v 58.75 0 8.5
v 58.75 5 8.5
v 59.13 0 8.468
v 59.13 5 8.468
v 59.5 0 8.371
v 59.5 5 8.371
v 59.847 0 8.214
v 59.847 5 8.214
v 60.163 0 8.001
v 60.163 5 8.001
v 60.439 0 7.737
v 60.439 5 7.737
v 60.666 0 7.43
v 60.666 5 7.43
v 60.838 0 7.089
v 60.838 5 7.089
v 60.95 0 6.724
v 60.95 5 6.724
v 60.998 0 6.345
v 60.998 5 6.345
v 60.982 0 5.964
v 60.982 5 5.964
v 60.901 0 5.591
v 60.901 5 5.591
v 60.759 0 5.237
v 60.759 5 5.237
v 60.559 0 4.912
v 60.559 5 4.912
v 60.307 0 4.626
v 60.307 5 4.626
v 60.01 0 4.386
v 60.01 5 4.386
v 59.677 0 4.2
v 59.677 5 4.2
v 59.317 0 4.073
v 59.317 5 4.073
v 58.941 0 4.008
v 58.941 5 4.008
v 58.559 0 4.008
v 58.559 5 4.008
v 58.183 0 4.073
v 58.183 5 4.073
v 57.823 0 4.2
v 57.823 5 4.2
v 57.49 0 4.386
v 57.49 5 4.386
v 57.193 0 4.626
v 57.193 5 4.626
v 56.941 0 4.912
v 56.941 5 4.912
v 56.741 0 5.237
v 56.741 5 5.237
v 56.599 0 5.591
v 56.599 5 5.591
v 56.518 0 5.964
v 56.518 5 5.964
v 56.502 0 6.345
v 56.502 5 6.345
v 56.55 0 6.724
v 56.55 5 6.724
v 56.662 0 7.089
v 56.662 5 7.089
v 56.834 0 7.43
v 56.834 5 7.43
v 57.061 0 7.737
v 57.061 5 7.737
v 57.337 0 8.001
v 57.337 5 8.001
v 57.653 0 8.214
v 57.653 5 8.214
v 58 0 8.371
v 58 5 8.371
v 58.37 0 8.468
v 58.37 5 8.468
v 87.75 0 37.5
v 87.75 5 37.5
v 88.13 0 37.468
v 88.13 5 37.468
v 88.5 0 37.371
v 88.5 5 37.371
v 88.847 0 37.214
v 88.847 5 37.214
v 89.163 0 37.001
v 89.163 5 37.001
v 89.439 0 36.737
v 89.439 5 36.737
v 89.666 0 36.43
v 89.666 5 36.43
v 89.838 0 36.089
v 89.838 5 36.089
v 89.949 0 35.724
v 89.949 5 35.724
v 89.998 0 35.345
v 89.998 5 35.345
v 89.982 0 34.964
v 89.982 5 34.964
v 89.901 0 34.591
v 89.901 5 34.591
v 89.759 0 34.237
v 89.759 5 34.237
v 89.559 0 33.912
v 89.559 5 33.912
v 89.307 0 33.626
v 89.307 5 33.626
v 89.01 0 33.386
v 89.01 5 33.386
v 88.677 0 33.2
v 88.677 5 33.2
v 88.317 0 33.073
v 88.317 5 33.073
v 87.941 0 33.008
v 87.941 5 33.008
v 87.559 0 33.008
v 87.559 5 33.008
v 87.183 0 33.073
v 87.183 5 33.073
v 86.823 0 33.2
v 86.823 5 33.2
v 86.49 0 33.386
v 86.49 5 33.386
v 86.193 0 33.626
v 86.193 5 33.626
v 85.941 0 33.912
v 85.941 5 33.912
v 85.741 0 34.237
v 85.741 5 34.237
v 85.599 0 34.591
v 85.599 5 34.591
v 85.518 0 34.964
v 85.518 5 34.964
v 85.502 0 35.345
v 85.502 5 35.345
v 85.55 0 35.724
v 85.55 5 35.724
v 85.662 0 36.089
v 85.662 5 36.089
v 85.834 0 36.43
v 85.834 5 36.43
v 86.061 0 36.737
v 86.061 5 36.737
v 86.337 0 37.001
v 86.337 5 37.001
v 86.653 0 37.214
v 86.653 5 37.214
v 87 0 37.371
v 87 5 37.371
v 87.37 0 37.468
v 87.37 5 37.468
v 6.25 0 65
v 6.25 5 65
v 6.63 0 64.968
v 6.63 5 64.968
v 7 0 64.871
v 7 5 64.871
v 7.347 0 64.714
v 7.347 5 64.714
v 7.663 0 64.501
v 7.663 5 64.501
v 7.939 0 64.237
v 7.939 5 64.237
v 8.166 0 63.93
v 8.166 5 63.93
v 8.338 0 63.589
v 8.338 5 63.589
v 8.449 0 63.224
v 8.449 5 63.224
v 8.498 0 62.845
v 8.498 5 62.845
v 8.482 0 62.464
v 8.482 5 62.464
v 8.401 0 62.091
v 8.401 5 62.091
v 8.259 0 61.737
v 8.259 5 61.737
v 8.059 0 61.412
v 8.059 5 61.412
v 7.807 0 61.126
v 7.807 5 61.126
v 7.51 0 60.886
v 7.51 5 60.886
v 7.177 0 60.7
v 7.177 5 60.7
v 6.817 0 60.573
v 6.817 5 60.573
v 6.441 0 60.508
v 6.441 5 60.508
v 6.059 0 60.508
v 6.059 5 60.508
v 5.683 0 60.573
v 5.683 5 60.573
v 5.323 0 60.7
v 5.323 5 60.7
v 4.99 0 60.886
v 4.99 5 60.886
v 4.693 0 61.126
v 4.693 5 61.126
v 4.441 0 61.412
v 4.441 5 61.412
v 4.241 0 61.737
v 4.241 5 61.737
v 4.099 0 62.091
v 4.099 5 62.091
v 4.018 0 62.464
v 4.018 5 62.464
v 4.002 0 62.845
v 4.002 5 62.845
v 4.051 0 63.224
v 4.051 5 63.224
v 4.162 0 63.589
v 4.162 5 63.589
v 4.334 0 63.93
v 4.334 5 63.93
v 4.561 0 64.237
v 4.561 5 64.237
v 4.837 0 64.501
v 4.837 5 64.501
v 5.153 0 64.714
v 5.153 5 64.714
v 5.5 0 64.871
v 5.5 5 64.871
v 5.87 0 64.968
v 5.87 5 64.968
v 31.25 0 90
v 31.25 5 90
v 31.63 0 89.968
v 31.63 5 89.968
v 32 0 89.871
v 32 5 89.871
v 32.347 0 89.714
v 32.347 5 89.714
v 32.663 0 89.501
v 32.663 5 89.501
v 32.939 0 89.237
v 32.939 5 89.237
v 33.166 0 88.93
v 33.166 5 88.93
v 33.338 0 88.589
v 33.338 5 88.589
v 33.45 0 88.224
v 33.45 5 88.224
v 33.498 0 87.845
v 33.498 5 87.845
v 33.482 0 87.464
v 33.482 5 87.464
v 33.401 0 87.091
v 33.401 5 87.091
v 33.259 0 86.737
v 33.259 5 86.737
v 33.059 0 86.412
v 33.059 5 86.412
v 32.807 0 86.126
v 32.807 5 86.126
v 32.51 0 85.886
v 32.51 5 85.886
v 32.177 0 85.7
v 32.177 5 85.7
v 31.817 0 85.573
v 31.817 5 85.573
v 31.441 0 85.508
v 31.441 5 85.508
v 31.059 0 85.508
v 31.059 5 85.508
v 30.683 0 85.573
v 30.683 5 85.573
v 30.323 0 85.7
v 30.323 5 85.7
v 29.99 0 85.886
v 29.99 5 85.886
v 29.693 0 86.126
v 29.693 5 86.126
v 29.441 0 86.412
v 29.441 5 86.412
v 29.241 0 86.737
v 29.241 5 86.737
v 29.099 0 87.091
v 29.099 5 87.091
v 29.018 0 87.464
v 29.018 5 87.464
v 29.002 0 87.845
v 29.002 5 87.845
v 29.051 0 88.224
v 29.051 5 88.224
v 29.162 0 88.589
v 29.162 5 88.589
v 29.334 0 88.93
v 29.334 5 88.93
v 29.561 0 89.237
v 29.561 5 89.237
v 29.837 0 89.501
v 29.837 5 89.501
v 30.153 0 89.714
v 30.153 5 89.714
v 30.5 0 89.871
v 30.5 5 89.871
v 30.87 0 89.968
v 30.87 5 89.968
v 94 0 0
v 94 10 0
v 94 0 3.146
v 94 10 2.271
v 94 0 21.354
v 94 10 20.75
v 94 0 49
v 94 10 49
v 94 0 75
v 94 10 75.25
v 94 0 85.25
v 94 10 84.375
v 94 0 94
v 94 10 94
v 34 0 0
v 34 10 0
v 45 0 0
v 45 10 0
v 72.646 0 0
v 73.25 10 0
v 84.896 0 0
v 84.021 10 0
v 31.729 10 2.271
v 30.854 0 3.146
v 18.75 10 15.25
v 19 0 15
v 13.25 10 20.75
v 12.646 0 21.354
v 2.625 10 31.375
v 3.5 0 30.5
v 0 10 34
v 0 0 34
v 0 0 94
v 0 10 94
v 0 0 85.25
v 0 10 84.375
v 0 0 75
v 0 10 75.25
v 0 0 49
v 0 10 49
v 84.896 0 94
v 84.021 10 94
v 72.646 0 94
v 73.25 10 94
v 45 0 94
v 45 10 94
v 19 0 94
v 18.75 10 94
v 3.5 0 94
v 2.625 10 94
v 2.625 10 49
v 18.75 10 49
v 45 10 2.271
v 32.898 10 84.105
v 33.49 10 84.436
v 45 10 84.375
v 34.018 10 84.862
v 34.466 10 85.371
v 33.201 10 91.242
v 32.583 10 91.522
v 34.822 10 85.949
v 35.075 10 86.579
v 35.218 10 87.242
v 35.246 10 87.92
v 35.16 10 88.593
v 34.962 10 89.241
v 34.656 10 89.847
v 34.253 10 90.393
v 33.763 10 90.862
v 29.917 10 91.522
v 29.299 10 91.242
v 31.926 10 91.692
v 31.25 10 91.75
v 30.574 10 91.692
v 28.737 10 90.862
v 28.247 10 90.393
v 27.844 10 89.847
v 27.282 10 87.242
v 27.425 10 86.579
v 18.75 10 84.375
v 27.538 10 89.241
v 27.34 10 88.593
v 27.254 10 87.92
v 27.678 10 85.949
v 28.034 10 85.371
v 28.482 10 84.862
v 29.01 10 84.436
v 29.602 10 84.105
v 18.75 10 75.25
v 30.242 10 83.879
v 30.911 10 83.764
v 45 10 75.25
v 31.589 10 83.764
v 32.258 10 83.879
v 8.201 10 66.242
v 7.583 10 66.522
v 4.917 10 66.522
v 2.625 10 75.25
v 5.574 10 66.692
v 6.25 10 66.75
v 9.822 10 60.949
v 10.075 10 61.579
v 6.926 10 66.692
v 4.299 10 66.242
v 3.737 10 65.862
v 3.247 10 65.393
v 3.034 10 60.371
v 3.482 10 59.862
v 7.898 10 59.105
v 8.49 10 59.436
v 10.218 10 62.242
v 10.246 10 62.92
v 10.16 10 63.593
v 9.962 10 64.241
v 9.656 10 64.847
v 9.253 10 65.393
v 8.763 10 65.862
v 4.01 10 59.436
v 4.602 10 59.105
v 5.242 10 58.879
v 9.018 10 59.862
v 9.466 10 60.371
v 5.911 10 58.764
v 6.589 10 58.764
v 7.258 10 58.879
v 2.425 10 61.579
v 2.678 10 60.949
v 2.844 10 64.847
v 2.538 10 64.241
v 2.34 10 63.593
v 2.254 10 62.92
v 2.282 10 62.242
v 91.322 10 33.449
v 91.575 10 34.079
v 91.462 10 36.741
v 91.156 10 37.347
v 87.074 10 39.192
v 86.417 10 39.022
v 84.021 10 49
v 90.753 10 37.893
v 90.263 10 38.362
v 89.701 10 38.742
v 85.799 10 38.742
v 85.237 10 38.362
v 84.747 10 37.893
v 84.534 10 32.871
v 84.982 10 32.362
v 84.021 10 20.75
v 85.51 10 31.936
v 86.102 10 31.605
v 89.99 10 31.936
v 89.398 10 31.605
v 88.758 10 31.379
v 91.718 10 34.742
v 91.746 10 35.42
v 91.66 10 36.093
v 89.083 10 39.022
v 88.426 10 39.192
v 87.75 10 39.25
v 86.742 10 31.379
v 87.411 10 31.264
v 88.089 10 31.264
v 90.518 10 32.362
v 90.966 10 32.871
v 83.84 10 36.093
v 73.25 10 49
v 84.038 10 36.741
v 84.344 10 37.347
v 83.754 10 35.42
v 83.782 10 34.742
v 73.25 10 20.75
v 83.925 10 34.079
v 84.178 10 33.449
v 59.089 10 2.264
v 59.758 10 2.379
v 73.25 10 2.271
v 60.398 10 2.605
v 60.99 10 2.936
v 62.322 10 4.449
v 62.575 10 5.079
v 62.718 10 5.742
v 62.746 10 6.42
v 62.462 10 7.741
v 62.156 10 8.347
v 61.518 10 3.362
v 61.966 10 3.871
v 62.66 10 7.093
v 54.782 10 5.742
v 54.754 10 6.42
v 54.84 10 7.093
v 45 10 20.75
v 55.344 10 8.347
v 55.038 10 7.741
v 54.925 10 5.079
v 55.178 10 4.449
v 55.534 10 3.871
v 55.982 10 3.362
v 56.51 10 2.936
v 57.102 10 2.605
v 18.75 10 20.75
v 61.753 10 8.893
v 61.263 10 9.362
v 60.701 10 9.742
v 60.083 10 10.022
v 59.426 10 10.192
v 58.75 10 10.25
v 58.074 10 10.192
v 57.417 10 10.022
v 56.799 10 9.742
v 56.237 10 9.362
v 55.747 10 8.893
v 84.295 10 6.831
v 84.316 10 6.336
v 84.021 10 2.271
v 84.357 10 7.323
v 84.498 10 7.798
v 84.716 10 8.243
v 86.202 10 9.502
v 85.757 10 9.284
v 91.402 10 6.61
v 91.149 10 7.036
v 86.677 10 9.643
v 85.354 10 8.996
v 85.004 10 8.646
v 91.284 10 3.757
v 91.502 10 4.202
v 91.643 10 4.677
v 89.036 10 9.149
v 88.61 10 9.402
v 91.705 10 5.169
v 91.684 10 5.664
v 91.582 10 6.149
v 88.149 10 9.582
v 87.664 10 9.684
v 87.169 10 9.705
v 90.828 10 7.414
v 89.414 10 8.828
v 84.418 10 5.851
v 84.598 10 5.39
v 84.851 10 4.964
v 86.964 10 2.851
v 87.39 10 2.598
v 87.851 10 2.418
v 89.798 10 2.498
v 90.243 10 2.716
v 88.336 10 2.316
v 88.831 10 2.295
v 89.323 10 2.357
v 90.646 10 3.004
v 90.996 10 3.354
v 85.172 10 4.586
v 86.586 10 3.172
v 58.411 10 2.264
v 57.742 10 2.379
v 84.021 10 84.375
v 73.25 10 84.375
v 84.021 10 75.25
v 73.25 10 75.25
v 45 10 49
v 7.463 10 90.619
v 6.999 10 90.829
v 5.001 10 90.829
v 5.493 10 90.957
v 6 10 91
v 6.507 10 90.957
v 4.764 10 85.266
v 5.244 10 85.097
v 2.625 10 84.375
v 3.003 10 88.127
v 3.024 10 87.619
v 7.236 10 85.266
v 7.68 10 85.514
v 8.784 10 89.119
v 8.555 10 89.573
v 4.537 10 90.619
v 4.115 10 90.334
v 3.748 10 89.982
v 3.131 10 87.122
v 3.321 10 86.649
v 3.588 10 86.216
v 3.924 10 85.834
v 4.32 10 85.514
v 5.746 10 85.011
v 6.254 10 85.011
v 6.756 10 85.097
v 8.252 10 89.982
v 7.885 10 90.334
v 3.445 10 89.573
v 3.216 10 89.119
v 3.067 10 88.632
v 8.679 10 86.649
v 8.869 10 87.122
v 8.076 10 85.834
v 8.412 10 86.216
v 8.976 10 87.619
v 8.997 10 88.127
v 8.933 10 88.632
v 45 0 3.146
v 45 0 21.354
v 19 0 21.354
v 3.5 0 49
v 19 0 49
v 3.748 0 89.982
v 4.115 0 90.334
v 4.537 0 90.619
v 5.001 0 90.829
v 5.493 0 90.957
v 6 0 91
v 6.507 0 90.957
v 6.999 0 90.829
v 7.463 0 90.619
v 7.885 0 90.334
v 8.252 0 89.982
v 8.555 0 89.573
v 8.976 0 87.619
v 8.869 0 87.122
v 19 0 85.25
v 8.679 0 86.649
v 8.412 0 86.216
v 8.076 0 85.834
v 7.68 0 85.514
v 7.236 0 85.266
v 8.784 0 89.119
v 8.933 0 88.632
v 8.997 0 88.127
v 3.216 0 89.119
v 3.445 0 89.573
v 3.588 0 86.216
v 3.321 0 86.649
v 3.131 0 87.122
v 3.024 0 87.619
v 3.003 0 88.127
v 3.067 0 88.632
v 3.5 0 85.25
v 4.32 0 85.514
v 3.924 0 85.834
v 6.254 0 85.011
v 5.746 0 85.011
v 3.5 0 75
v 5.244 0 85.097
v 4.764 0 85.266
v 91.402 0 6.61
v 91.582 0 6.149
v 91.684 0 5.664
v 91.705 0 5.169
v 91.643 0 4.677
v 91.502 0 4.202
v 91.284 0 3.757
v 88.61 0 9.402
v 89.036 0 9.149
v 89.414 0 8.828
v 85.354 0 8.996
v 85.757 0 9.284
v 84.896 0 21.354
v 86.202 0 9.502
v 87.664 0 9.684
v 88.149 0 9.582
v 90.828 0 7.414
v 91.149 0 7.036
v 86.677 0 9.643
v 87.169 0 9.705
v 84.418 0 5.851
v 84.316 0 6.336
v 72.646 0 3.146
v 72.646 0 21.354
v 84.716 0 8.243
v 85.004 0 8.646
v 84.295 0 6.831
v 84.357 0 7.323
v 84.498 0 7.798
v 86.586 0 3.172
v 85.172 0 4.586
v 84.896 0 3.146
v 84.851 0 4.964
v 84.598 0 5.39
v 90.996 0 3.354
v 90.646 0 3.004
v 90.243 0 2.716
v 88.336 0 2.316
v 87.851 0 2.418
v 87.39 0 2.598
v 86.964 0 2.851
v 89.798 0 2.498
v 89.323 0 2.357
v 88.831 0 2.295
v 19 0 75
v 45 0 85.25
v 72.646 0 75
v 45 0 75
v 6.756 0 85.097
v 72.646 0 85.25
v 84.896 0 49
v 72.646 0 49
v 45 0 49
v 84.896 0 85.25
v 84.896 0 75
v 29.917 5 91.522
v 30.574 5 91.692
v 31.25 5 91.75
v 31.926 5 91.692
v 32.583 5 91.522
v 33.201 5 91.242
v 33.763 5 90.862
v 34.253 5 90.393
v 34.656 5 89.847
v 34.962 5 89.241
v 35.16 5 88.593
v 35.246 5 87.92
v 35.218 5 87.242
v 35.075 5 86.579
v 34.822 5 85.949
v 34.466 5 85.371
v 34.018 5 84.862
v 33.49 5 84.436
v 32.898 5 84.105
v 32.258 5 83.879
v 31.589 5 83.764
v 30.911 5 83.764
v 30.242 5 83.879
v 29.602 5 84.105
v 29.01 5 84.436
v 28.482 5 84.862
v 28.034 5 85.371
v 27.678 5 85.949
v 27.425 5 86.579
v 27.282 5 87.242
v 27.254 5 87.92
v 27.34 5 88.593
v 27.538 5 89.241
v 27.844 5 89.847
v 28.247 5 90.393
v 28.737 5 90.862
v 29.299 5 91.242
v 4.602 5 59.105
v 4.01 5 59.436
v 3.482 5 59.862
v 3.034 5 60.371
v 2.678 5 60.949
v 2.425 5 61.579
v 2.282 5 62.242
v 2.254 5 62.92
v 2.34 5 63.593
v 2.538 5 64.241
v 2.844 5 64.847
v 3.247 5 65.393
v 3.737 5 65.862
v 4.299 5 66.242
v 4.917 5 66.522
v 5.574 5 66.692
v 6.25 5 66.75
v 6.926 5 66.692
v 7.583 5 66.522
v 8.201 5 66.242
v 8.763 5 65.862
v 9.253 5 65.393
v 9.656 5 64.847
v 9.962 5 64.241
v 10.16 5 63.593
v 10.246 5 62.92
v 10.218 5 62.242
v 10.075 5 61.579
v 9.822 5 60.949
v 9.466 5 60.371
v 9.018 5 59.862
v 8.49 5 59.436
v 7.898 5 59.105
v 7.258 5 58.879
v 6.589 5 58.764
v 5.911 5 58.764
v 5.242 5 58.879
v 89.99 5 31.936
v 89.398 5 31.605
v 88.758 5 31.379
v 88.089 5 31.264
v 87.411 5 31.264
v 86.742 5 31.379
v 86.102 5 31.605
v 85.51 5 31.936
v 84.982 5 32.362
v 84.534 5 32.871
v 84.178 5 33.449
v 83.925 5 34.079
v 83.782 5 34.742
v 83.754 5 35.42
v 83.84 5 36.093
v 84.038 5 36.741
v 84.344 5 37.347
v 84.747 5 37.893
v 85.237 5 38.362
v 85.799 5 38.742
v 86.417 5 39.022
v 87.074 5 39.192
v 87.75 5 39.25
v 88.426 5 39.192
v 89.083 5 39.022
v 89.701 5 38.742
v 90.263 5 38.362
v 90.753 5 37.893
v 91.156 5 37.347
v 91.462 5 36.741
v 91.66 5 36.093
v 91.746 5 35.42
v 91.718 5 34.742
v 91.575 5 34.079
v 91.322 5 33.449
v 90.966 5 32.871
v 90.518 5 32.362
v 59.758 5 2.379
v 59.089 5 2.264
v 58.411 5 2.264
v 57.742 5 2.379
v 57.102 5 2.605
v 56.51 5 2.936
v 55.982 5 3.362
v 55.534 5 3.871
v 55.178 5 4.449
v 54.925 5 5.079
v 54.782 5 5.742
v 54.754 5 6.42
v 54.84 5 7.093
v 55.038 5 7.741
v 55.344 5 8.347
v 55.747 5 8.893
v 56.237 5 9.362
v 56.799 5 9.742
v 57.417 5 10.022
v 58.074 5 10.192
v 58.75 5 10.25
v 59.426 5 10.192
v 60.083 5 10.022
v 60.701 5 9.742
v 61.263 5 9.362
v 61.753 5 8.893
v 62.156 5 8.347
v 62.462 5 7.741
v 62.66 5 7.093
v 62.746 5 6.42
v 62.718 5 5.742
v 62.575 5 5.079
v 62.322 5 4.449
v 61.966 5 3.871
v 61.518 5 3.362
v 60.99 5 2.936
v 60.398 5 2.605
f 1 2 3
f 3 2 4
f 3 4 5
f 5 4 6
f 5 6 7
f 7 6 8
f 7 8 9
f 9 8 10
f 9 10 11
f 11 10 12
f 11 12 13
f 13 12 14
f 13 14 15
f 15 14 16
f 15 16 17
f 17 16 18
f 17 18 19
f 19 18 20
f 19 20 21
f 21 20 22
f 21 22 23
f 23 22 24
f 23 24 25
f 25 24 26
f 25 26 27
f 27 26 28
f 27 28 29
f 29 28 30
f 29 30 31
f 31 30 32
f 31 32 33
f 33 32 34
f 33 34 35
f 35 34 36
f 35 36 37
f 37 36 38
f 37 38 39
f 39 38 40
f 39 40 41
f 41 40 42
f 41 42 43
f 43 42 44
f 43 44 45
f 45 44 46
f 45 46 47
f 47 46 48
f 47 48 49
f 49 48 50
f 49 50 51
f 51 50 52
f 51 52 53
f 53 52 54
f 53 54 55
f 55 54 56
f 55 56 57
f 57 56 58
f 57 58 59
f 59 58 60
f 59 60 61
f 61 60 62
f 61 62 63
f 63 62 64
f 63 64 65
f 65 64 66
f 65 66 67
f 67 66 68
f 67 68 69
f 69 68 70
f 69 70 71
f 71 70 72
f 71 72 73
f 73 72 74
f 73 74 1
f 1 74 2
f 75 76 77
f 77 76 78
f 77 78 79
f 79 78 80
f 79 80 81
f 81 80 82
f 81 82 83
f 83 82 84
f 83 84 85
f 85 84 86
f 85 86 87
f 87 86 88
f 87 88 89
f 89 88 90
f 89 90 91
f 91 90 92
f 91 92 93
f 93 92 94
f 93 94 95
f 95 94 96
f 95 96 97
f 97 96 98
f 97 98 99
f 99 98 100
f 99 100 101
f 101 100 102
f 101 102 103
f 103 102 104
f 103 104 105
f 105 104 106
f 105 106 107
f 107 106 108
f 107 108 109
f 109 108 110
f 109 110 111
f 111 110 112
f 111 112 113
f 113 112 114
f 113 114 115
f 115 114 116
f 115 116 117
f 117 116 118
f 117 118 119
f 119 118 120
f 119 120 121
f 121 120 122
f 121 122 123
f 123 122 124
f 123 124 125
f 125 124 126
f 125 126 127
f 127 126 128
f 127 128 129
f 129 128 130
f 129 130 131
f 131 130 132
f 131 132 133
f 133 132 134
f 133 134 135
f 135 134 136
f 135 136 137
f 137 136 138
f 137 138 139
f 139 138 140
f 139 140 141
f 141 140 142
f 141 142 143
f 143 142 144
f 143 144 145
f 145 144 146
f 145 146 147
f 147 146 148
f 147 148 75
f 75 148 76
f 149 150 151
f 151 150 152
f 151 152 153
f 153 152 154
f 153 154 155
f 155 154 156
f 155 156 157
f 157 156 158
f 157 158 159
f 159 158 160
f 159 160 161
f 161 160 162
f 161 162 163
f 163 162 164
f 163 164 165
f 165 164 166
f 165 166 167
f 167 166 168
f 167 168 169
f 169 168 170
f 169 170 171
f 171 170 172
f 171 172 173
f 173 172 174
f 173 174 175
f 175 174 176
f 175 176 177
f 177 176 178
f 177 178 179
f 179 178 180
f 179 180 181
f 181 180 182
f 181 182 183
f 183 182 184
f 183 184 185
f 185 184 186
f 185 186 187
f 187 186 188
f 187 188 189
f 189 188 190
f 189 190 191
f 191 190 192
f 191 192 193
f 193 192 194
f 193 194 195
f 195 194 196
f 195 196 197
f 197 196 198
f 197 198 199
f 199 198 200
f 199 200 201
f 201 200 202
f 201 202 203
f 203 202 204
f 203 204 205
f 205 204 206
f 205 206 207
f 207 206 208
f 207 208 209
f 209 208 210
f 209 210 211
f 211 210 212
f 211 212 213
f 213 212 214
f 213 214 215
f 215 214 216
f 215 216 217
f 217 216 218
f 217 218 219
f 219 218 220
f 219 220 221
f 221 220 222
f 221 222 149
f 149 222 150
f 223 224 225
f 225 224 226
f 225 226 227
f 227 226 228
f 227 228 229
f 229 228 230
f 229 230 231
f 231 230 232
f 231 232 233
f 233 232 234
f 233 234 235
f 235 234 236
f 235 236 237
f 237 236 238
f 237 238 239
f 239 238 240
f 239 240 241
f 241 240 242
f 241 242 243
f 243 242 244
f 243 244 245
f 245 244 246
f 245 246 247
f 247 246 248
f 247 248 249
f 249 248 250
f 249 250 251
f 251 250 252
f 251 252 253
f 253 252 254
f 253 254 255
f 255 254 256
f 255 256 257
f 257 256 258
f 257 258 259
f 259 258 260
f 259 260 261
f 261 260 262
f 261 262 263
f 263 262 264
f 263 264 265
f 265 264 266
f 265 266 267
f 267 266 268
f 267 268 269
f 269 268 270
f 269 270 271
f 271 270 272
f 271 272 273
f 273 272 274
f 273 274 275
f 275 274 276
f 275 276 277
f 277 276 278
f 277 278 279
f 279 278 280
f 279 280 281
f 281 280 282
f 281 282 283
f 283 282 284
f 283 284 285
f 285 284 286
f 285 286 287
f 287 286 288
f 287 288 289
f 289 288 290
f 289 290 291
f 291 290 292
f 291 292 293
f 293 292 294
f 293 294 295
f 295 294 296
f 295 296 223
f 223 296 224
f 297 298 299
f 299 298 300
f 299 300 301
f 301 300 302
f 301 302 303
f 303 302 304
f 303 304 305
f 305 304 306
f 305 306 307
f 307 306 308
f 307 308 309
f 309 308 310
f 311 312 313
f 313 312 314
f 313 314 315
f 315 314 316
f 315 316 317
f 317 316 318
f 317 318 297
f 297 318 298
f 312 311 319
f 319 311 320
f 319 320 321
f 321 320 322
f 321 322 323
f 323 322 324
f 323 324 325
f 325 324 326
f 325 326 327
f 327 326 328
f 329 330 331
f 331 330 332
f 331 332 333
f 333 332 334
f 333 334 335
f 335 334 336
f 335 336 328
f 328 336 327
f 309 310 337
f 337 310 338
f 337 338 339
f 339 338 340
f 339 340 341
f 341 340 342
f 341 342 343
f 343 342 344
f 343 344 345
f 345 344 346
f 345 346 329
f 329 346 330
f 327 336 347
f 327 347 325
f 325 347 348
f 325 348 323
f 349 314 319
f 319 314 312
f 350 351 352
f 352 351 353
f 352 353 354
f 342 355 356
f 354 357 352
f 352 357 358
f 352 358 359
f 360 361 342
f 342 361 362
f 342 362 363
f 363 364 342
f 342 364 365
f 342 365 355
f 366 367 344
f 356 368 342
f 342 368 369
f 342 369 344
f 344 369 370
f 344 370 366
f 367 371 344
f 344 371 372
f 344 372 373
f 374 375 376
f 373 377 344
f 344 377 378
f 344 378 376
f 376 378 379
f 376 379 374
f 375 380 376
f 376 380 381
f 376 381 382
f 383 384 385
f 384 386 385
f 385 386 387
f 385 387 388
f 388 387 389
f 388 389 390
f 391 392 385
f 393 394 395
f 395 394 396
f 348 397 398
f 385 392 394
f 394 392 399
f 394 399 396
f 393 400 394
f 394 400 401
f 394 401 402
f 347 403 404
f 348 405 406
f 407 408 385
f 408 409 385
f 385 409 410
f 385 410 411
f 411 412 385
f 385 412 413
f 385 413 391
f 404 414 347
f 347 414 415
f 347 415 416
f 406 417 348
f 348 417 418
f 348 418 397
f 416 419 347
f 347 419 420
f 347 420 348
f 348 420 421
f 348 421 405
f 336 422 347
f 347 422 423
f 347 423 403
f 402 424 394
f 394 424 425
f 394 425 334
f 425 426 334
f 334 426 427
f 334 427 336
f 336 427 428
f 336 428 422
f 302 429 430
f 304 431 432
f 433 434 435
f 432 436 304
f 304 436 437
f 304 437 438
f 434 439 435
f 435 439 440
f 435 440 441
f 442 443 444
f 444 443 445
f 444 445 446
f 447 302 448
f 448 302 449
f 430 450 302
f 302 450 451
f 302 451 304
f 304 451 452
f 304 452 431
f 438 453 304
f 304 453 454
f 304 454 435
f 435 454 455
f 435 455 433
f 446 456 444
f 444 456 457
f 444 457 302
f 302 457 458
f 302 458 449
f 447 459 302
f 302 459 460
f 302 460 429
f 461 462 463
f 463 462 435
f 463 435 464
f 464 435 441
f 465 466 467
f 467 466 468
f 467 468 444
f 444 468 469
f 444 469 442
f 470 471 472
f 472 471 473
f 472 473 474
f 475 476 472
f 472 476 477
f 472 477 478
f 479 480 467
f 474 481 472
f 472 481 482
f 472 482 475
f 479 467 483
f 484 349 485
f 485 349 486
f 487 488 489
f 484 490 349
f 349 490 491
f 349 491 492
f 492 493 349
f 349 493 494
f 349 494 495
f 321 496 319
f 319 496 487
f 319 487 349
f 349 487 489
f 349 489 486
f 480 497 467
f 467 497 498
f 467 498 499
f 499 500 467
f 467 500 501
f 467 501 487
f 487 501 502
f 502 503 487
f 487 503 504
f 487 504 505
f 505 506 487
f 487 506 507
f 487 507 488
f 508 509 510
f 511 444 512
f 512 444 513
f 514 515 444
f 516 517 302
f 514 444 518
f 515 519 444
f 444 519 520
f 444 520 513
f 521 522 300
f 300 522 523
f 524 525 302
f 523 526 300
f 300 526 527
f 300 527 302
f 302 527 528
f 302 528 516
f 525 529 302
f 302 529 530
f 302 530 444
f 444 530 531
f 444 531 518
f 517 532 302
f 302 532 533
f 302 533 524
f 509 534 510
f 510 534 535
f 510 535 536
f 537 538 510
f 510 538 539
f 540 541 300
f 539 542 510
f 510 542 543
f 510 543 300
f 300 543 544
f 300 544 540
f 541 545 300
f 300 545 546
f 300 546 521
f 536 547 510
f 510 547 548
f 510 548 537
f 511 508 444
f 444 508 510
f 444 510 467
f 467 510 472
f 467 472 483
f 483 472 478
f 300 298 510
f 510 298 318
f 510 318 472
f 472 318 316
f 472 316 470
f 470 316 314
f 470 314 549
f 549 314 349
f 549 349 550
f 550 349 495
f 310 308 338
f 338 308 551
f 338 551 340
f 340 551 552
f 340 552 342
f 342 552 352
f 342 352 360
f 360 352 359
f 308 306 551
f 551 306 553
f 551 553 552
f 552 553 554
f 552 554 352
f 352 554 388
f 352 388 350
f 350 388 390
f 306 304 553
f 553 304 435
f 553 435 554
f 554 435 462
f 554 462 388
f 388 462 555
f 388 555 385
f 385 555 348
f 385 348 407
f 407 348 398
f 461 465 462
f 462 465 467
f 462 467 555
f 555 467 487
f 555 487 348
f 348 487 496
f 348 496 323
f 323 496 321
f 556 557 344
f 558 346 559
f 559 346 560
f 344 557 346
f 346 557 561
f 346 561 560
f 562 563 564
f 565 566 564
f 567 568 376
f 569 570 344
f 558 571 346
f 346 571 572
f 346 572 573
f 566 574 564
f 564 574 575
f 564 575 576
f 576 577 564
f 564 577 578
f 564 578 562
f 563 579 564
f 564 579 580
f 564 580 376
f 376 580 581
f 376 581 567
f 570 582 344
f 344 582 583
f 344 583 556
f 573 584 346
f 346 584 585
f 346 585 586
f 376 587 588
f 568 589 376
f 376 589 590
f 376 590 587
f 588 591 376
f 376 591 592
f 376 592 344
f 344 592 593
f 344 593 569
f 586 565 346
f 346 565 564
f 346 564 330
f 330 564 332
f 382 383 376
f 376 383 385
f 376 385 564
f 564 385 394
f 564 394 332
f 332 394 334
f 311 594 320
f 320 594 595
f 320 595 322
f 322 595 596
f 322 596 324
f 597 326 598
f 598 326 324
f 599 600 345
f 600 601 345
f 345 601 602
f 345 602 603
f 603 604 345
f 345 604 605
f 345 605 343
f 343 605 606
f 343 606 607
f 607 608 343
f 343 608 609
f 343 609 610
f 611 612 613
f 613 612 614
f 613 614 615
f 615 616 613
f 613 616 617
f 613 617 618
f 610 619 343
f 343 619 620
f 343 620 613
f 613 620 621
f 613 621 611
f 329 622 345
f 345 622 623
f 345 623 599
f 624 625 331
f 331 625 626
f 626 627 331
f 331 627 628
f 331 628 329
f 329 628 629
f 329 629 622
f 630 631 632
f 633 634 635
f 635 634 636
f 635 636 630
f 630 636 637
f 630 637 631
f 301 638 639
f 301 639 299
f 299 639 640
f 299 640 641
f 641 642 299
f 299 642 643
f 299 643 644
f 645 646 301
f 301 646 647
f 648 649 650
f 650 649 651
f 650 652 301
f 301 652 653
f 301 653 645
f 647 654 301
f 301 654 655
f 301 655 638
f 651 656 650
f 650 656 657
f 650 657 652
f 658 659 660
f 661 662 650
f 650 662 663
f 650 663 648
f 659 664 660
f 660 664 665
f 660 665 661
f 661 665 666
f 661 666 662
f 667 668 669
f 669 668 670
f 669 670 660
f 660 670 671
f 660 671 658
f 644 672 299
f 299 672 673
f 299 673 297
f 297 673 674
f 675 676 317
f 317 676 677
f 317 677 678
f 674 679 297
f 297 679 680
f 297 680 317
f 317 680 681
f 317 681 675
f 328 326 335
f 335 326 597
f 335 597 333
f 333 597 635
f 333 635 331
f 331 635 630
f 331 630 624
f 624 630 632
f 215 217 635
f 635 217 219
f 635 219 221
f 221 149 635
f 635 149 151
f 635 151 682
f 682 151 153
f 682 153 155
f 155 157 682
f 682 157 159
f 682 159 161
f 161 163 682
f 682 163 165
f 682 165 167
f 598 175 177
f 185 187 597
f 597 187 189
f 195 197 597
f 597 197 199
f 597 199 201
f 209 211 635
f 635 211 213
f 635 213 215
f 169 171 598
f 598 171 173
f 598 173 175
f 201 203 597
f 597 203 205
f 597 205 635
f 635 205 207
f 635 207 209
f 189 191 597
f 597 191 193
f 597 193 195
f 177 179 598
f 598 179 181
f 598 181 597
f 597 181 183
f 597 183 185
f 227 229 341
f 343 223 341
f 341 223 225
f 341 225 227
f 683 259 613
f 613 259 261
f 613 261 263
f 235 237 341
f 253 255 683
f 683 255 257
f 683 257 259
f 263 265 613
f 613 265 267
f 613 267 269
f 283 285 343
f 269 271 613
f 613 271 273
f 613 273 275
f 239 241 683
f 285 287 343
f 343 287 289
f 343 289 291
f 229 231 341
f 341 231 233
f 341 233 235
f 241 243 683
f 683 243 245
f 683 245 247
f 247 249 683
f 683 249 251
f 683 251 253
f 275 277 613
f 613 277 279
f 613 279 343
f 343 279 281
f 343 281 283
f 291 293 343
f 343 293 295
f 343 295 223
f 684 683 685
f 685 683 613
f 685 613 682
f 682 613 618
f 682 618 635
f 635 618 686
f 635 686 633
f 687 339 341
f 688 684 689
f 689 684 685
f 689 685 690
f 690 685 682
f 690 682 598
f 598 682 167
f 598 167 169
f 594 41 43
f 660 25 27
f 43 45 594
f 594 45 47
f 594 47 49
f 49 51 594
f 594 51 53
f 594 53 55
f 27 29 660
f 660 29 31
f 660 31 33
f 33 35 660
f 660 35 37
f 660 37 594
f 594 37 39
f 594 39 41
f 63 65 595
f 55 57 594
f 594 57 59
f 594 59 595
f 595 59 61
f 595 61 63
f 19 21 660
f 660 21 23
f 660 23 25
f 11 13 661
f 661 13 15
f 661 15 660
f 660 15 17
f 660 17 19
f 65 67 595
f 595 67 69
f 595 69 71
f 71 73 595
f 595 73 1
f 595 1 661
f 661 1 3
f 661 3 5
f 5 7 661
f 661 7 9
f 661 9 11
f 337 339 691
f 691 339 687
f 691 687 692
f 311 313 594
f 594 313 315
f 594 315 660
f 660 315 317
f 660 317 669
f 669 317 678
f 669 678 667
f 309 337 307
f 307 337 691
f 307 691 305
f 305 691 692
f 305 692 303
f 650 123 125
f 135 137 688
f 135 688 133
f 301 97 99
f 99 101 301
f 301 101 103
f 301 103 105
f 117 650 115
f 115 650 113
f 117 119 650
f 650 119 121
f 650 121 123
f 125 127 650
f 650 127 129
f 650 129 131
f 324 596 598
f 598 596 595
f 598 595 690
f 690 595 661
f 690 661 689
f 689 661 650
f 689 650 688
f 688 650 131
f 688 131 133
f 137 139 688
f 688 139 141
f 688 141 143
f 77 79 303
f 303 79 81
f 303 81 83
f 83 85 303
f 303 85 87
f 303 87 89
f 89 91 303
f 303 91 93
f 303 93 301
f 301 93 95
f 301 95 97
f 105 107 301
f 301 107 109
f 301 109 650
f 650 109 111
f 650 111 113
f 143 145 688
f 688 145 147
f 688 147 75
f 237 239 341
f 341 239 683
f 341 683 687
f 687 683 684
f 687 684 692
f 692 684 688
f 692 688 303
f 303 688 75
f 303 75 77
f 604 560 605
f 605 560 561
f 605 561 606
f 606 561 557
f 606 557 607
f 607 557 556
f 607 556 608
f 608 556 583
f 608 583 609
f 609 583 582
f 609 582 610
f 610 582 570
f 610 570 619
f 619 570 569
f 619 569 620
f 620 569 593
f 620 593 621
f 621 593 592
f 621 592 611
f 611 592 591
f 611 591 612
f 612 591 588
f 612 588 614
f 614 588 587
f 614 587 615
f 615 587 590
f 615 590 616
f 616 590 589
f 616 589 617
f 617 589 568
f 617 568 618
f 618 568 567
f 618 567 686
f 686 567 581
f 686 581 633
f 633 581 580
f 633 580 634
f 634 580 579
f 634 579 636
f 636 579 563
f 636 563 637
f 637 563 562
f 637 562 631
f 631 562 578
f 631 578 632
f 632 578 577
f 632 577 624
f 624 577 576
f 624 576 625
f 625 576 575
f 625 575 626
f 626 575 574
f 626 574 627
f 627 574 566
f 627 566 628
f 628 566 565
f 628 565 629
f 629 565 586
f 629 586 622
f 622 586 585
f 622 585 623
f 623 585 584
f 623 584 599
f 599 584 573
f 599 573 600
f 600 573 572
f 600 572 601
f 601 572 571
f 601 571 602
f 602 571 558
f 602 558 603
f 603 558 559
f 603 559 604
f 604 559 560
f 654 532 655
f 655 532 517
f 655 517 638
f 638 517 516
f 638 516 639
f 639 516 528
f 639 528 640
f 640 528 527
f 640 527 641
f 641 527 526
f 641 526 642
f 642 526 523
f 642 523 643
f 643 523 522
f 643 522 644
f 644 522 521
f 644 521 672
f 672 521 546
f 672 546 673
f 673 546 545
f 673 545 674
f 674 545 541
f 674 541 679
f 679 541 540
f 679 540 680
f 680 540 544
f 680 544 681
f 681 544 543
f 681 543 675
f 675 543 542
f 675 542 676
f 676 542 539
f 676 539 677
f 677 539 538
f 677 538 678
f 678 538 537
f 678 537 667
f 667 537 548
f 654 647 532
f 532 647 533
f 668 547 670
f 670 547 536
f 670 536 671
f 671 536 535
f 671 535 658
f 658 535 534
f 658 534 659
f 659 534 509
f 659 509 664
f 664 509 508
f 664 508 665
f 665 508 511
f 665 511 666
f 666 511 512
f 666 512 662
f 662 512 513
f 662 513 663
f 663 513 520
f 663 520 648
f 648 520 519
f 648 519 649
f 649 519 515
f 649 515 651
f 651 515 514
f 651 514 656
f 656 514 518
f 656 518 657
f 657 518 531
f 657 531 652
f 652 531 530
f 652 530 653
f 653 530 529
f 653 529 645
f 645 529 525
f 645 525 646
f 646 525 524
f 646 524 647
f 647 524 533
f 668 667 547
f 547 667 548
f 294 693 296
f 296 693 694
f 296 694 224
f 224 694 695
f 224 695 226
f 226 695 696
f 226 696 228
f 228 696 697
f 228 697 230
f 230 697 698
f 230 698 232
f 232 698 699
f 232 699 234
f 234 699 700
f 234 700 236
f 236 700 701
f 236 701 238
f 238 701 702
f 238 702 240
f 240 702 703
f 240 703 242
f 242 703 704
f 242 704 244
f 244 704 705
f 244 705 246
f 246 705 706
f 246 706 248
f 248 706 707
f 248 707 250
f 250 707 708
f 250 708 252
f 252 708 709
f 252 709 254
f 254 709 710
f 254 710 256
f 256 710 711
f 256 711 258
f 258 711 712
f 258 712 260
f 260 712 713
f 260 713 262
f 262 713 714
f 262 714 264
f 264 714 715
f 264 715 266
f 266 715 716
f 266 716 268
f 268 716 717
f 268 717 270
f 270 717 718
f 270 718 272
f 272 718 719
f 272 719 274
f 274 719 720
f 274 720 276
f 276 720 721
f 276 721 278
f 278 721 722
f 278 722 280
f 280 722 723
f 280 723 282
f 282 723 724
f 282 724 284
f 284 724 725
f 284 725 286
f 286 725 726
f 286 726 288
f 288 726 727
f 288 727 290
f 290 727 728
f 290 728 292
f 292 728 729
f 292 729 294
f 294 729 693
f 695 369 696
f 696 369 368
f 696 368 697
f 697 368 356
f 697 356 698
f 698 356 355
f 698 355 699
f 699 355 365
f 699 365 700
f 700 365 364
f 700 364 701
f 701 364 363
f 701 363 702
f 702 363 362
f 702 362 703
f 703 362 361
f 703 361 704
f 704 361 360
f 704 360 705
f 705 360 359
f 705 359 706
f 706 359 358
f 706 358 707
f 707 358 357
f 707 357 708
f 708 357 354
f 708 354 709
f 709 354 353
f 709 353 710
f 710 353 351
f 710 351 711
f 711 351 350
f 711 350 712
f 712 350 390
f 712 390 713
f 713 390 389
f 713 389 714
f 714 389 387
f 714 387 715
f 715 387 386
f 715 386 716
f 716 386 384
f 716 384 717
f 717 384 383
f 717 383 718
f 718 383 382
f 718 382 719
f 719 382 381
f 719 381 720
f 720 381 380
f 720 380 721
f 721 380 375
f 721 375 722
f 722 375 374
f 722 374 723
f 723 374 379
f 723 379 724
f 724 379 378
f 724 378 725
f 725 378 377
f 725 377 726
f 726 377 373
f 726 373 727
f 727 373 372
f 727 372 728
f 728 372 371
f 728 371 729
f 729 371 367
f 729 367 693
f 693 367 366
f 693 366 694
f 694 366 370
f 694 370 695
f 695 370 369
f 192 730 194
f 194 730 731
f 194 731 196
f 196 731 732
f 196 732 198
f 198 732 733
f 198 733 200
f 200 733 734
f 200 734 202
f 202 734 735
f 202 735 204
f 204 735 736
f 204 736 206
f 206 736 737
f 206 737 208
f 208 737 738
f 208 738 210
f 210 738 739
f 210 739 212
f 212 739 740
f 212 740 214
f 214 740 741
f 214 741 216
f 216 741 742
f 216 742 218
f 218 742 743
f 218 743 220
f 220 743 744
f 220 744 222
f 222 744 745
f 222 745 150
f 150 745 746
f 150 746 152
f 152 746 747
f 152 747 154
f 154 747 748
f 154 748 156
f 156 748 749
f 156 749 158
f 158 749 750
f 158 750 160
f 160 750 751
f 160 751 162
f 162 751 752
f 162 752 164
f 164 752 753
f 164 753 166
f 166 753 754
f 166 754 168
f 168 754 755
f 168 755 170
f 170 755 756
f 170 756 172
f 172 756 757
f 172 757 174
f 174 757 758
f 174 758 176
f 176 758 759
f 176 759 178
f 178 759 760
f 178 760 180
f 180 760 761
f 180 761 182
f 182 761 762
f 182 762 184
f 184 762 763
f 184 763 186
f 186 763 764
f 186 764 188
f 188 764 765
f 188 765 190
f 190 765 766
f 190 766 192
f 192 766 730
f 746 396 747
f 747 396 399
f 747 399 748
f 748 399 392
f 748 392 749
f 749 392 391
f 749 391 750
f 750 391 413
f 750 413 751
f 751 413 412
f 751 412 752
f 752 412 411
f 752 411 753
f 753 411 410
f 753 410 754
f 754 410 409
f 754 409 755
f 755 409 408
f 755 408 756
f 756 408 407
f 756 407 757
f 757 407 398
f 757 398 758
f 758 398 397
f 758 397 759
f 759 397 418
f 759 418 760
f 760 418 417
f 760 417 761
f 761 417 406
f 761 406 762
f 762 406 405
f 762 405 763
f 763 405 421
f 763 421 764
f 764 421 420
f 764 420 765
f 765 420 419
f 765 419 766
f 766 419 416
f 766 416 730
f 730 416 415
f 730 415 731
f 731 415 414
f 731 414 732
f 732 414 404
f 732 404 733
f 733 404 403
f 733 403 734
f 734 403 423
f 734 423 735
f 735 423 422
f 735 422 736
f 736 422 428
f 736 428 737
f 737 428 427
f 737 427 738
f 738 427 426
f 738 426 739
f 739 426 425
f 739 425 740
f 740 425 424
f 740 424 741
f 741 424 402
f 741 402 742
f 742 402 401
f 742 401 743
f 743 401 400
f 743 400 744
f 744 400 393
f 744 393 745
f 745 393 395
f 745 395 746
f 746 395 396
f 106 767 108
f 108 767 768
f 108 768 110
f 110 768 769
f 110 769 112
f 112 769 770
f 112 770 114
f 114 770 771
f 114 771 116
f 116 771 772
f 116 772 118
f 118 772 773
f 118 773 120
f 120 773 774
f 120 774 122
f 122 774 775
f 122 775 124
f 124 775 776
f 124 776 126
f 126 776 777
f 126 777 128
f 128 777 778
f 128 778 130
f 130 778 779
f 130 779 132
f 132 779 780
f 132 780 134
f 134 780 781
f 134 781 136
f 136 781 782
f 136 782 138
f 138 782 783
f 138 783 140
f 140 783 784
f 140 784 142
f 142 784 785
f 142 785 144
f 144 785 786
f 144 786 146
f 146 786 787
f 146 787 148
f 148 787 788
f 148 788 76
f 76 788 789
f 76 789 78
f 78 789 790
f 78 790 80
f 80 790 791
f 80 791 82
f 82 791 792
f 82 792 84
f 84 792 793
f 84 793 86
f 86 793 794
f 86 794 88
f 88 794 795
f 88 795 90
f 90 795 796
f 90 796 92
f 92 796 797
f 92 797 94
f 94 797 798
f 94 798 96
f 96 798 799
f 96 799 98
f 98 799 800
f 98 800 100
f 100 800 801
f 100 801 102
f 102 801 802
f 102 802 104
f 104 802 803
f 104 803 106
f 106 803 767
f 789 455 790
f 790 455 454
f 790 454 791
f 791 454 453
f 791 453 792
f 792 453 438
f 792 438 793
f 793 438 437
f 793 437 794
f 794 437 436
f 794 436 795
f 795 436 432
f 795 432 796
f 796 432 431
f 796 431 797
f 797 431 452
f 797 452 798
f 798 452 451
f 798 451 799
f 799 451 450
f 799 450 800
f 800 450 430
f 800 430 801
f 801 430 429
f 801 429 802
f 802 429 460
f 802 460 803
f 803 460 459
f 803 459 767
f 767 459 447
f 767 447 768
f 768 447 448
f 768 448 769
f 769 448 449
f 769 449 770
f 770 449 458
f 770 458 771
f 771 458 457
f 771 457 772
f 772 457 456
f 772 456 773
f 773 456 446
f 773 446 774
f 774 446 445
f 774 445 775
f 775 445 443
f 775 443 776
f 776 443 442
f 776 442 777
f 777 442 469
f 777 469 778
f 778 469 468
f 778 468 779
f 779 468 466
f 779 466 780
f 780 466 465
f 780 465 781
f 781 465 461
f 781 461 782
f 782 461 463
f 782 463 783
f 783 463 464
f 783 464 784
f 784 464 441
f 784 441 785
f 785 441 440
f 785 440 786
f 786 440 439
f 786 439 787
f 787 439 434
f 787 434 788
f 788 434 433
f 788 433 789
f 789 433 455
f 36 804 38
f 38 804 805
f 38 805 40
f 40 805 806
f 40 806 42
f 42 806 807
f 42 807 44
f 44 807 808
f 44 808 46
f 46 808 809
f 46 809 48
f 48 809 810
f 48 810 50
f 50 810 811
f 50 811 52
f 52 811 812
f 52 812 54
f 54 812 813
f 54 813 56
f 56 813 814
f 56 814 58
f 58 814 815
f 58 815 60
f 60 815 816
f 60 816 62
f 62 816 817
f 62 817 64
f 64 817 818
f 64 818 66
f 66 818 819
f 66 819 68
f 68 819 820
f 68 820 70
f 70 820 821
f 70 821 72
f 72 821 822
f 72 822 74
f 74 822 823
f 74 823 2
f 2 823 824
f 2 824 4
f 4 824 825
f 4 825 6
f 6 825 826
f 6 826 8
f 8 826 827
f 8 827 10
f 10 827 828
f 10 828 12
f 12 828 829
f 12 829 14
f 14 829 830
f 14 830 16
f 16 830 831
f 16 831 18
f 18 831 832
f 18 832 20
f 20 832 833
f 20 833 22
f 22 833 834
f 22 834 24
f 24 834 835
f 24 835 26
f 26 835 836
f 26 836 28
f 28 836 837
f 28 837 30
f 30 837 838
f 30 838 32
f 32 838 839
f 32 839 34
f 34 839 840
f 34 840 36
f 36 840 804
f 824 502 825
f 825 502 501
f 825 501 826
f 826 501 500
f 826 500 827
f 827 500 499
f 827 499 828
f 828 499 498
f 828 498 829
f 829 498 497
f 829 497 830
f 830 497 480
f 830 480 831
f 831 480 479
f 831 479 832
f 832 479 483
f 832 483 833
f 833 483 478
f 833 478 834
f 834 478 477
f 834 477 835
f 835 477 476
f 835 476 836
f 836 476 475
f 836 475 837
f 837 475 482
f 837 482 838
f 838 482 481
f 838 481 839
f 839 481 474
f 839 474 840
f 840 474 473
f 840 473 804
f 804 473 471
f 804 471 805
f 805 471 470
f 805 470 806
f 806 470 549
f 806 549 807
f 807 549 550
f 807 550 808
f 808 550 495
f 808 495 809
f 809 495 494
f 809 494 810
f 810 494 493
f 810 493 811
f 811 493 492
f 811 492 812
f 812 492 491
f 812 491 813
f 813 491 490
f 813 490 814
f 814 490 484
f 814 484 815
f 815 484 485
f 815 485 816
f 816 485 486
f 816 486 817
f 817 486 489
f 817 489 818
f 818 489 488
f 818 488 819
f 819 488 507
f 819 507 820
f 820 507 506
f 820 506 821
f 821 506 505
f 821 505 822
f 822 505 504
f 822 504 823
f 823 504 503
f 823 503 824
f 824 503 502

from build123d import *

# Parameters (mm, degrees)
BOSS_EXTRUDE1_DEPTH = 10
SKETCH3_R           = 2.25
SKETCH3_R_2         = 3
CUT_EXTRUDE1_DEPTH  = 10
SKETCH5_R           = 4
CUT_EXTRUDE2_DEPTH  = 5


with BuildPart() as part:
    # Sketch2 → Boss-Extrude1 (new body)
    with BuildSketch(Plane(origin=(0, 0, 0), x_dir=(1, 0, 0), z_dir=(0, 1, 0))):
        Polygon((0, -34), (34, 0), (94, 0), (94, -94), (0, -94), align=None)
    extrude(amount=BOSS_EXTRUDE1_DEPTH)

    # Sketch3 → Cut-Extrude1 (cut)
    with BuildSketch(Plane(origin=(0, 10, 0), x_dir=(1, 0, 0), z_dir=(0, 1, 0))):
        with Locations((58.75, -6.25)):
            Circle(SKETCH3_R)
        with Locations((87.75, -35.25)):
            Circle(SKETCH3_R)
        with Locations((6.25, -62.75)):
            Circle(SKETCH3_R)
        with Locations((31.25, -87.75)):
            Circle(SKETCH3_R)
        with Locations((6, -88)):
            Circle(SKETCH3_R_2)
        with BuildLine():
            Line((90.828427125, -7.414213562), (89.414213562, -8.828427125))
            ThreePointArc((89.414213562, -8.828427125), (85.171572875, -8.828427125), (85.171572875, -4.585786438))
            Line((85.171572875, -4.585786438), (86.585786438, -3.171572875))
            ThreePointArc((86.585786438, -3.171572875), (90.828427125, -3.171572875), (90.828427125, -7.414213562))
        make_face()
    extrude(amount=-CUT_EXTRUDE1_DEPTH, mode=Mode.SUBTRACT)

    # Sketch5 → Cut-Extrude2 (cut)
    with BuildSketch(Plane(origin=(0, 10, 0), x_dir=(1, 0, 0), z_dir=(0, 1, 0))):
        with Locations((58.75, -6.25)):
            Circle(SKETCH5_R)
        with Locations((87.75, -35.25)):
            Circle(SKETCH5_R)
        with Locations((6.25, -62.75)):
            Circle(SKETCH5_R)
        with Locations((31.25, -87.75)):
            Circle(SKETCH5_R)
    extrude(amount=-CUT_EXTRUDE2_DEPTH, mode=Mode.SUBTRACT)


solid = part.part
